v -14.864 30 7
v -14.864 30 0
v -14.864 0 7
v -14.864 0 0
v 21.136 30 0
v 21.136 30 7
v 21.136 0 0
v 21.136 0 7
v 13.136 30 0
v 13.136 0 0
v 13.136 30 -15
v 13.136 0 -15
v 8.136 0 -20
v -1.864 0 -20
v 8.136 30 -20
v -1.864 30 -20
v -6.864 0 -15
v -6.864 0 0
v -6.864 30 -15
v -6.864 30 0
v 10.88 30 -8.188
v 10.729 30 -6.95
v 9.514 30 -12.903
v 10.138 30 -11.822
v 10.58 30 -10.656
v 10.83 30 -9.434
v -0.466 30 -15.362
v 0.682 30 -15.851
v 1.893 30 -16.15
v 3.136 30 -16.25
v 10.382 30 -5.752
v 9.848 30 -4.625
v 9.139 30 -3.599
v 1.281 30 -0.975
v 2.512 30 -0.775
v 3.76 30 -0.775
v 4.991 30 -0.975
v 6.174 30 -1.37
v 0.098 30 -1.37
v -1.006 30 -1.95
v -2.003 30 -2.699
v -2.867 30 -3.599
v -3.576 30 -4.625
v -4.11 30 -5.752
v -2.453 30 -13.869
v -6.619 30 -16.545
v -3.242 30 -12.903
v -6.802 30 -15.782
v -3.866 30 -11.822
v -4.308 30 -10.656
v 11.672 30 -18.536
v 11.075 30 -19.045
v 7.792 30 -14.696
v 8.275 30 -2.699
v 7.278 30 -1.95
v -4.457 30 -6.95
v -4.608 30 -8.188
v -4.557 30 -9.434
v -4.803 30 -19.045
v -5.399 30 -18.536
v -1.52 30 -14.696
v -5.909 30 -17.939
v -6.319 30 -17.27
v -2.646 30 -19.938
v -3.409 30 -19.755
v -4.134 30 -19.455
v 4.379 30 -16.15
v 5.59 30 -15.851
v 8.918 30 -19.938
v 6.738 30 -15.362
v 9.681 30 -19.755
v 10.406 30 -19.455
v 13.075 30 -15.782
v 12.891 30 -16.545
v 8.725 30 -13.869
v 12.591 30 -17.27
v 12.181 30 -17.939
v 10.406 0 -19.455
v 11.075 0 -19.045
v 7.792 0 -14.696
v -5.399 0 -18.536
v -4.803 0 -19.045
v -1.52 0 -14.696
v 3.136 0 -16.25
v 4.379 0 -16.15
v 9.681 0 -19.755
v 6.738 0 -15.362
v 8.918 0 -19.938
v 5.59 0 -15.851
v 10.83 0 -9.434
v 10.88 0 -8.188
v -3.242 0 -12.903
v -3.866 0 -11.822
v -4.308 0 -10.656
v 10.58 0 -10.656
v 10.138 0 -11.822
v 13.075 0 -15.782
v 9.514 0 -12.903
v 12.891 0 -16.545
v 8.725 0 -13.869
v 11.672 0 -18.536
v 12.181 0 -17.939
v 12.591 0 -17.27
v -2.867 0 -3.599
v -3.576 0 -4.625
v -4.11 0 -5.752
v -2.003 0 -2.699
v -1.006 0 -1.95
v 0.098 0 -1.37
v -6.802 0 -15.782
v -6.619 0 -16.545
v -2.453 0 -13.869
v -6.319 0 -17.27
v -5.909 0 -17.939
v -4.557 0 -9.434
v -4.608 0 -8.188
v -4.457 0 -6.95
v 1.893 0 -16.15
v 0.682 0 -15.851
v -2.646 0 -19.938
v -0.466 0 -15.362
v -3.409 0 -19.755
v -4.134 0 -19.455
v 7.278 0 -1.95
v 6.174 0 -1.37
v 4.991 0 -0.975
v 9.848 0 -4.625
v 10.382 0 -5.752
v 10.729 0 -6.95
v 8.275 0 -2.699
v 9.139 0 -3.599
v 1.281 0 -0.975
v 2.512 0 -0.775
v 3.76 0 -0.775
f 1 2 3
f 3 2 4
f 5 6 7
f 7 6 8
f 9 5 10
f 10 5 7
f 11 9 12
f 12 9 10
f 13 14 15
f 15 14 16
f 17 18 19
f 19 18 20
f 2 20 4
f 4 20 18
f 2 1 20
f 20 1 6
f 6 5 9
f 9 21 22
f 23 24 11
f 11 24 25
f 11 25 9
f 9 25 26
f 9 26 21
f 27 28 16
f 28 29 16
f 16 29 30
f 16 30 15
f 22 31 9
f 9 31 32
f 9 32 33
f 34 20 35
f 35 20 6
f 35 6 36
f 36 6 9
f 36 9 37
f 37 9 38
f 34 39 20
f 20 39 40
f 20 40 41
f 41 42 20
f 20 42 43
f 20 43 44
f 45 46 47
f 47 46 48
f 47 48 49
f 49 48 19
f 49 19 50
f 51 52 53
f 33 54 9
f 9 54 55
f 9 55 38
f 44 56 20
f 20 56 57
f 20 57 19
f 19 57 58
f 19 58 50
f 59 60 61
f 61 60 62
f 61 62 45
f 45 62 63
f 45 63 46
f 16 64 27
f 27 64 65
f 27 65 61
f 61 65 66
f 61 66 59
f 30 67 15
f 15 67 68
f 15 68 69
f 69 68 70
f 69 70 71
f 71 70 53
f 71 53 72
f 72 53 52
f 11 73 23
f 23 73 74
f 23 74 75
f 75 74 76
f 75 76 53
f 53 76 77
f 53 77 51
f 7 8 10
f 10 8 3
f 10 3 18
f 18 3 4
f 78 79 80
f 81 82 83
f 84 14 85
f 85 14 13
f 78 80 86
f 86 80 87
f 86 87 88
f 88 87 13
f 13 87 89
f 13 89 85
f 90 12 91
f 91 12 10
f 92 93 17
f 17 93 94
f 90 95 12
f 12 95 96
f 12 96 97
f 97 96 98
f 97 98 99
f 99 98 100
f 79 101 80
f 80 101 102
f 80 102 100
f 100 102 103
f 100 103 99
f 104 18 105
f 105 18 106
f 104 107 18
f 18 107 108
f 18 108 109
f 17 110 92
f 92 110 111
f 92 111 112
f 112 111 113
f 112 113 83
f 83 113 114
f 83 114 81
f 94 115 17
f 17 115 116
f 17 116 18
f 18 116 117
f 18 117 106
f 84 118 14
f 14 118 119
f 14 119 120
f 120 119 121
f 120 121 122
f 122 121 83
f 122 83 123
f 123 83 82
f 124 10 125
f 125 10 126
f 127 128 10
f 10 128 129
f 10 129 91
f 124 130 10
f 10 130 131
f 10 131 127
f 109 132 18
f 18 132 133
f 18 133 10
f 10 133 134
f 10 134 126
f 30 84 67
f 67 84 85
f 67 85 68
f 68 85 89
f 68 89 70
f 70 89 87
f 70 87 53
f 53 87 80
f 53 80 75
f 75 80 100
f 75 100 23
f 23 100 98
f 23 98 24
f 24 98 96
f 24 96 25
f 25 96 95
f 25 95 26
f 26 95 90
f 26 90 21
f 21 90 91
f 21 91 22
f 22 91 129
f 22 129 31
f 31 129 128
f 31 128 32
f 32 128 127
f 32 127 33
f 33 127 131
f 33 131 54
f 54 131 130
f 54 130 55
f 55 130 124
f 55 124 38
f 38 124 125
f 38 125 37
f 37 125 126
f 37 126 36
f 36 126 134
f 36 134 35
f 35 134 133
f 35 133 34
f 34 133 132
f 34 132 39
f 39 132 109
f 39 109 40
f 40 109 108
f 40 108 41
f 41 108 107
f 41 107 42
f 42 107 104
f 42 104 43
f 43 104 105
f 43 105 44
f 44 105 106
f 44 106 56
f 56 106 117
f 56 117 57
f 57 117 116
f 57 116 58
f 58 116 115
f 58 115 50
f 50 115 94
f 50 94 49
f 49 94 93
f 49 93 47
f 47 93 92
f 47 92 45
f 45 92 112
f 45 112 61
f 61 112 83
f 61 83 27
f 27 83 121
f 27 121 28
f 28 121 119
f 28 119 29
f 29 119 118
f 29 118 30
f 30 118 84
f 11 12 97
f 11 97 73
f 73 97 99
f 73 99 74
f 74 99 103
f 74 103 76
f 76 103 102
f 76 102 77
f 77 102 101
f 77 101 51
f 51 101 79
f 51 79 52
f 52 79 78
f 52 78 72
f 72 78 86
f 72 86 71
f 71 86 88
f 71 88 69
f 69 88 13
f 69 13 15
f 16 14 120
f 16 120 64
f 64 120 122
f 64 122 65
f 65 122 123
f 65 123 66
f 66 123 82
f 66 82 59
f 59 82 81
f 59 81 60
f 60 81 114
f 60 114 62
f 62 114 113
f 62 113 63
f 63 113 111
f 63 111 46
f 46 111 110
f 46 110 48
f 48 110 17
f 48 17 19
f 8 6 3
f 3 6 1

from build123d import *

# Parameters (mm, degrees)
BOSS_EXTRUDE1_DEPTH = 30
SKETCH3_R           = 7.75
CUT_EXTRUDE1_DEPTH  = 30
FILLET1_R           = 5
SKETCH4_W           = 36
SKETCH4_H           = 30
BOSS_EXTRUDE2_DEPTH = 4


with BuildPart() as part:
    # Sketch2 → Boss-Extrude1 (new body)
    with BuildSketch(Plane(origin=(0, 0, 0), x_dir=(1, 0, 0), z_dir=(0, 1, 0))):
        Polygon((-14.863905325, 0), (-6.863905325, 0), (-6.863905325, 20), (13.136094675, 20), (13.136094675, 0), (21.136094675, 0), (21.136094675, -3), (-14.863905325, -3), align=None)
    extrude(amount=BOSS_EXTRUDE1_DEPTH)

    # Sketch3 → Cut-Extrude1 (cut)
    with BuildSketch(Plane.XZ):
        with Locations(Location((3.136094675, -8.5, 0), (0, 0, 270))):
            Circle(SKETCH3_R)
    extrude(amount=-CUT_EXTRUDE1_DEPTH, mode=Mode.SUBTRACT)

    # Fillet1
    fillet1_edges = [part.edges().sort_by_distance(p)[0] for p in [
        (-6.863905325, 15, -20),
        (13.136094675, 15, -20),
    ]]
    fillet(fillet1_edges, radius=FILLET1_R)

    # Sketch4 → Boss-Extrude2 (add)
    with BuildSketch(Plane.XY.offset(3)):
        with Locations((3.136094675, 15)):
            Rectangle(SKETCH4_W, SKETCH4_H)
    extrude(amount=BOSS_EXTRUDE2_DEPTH)


solid = part.part
